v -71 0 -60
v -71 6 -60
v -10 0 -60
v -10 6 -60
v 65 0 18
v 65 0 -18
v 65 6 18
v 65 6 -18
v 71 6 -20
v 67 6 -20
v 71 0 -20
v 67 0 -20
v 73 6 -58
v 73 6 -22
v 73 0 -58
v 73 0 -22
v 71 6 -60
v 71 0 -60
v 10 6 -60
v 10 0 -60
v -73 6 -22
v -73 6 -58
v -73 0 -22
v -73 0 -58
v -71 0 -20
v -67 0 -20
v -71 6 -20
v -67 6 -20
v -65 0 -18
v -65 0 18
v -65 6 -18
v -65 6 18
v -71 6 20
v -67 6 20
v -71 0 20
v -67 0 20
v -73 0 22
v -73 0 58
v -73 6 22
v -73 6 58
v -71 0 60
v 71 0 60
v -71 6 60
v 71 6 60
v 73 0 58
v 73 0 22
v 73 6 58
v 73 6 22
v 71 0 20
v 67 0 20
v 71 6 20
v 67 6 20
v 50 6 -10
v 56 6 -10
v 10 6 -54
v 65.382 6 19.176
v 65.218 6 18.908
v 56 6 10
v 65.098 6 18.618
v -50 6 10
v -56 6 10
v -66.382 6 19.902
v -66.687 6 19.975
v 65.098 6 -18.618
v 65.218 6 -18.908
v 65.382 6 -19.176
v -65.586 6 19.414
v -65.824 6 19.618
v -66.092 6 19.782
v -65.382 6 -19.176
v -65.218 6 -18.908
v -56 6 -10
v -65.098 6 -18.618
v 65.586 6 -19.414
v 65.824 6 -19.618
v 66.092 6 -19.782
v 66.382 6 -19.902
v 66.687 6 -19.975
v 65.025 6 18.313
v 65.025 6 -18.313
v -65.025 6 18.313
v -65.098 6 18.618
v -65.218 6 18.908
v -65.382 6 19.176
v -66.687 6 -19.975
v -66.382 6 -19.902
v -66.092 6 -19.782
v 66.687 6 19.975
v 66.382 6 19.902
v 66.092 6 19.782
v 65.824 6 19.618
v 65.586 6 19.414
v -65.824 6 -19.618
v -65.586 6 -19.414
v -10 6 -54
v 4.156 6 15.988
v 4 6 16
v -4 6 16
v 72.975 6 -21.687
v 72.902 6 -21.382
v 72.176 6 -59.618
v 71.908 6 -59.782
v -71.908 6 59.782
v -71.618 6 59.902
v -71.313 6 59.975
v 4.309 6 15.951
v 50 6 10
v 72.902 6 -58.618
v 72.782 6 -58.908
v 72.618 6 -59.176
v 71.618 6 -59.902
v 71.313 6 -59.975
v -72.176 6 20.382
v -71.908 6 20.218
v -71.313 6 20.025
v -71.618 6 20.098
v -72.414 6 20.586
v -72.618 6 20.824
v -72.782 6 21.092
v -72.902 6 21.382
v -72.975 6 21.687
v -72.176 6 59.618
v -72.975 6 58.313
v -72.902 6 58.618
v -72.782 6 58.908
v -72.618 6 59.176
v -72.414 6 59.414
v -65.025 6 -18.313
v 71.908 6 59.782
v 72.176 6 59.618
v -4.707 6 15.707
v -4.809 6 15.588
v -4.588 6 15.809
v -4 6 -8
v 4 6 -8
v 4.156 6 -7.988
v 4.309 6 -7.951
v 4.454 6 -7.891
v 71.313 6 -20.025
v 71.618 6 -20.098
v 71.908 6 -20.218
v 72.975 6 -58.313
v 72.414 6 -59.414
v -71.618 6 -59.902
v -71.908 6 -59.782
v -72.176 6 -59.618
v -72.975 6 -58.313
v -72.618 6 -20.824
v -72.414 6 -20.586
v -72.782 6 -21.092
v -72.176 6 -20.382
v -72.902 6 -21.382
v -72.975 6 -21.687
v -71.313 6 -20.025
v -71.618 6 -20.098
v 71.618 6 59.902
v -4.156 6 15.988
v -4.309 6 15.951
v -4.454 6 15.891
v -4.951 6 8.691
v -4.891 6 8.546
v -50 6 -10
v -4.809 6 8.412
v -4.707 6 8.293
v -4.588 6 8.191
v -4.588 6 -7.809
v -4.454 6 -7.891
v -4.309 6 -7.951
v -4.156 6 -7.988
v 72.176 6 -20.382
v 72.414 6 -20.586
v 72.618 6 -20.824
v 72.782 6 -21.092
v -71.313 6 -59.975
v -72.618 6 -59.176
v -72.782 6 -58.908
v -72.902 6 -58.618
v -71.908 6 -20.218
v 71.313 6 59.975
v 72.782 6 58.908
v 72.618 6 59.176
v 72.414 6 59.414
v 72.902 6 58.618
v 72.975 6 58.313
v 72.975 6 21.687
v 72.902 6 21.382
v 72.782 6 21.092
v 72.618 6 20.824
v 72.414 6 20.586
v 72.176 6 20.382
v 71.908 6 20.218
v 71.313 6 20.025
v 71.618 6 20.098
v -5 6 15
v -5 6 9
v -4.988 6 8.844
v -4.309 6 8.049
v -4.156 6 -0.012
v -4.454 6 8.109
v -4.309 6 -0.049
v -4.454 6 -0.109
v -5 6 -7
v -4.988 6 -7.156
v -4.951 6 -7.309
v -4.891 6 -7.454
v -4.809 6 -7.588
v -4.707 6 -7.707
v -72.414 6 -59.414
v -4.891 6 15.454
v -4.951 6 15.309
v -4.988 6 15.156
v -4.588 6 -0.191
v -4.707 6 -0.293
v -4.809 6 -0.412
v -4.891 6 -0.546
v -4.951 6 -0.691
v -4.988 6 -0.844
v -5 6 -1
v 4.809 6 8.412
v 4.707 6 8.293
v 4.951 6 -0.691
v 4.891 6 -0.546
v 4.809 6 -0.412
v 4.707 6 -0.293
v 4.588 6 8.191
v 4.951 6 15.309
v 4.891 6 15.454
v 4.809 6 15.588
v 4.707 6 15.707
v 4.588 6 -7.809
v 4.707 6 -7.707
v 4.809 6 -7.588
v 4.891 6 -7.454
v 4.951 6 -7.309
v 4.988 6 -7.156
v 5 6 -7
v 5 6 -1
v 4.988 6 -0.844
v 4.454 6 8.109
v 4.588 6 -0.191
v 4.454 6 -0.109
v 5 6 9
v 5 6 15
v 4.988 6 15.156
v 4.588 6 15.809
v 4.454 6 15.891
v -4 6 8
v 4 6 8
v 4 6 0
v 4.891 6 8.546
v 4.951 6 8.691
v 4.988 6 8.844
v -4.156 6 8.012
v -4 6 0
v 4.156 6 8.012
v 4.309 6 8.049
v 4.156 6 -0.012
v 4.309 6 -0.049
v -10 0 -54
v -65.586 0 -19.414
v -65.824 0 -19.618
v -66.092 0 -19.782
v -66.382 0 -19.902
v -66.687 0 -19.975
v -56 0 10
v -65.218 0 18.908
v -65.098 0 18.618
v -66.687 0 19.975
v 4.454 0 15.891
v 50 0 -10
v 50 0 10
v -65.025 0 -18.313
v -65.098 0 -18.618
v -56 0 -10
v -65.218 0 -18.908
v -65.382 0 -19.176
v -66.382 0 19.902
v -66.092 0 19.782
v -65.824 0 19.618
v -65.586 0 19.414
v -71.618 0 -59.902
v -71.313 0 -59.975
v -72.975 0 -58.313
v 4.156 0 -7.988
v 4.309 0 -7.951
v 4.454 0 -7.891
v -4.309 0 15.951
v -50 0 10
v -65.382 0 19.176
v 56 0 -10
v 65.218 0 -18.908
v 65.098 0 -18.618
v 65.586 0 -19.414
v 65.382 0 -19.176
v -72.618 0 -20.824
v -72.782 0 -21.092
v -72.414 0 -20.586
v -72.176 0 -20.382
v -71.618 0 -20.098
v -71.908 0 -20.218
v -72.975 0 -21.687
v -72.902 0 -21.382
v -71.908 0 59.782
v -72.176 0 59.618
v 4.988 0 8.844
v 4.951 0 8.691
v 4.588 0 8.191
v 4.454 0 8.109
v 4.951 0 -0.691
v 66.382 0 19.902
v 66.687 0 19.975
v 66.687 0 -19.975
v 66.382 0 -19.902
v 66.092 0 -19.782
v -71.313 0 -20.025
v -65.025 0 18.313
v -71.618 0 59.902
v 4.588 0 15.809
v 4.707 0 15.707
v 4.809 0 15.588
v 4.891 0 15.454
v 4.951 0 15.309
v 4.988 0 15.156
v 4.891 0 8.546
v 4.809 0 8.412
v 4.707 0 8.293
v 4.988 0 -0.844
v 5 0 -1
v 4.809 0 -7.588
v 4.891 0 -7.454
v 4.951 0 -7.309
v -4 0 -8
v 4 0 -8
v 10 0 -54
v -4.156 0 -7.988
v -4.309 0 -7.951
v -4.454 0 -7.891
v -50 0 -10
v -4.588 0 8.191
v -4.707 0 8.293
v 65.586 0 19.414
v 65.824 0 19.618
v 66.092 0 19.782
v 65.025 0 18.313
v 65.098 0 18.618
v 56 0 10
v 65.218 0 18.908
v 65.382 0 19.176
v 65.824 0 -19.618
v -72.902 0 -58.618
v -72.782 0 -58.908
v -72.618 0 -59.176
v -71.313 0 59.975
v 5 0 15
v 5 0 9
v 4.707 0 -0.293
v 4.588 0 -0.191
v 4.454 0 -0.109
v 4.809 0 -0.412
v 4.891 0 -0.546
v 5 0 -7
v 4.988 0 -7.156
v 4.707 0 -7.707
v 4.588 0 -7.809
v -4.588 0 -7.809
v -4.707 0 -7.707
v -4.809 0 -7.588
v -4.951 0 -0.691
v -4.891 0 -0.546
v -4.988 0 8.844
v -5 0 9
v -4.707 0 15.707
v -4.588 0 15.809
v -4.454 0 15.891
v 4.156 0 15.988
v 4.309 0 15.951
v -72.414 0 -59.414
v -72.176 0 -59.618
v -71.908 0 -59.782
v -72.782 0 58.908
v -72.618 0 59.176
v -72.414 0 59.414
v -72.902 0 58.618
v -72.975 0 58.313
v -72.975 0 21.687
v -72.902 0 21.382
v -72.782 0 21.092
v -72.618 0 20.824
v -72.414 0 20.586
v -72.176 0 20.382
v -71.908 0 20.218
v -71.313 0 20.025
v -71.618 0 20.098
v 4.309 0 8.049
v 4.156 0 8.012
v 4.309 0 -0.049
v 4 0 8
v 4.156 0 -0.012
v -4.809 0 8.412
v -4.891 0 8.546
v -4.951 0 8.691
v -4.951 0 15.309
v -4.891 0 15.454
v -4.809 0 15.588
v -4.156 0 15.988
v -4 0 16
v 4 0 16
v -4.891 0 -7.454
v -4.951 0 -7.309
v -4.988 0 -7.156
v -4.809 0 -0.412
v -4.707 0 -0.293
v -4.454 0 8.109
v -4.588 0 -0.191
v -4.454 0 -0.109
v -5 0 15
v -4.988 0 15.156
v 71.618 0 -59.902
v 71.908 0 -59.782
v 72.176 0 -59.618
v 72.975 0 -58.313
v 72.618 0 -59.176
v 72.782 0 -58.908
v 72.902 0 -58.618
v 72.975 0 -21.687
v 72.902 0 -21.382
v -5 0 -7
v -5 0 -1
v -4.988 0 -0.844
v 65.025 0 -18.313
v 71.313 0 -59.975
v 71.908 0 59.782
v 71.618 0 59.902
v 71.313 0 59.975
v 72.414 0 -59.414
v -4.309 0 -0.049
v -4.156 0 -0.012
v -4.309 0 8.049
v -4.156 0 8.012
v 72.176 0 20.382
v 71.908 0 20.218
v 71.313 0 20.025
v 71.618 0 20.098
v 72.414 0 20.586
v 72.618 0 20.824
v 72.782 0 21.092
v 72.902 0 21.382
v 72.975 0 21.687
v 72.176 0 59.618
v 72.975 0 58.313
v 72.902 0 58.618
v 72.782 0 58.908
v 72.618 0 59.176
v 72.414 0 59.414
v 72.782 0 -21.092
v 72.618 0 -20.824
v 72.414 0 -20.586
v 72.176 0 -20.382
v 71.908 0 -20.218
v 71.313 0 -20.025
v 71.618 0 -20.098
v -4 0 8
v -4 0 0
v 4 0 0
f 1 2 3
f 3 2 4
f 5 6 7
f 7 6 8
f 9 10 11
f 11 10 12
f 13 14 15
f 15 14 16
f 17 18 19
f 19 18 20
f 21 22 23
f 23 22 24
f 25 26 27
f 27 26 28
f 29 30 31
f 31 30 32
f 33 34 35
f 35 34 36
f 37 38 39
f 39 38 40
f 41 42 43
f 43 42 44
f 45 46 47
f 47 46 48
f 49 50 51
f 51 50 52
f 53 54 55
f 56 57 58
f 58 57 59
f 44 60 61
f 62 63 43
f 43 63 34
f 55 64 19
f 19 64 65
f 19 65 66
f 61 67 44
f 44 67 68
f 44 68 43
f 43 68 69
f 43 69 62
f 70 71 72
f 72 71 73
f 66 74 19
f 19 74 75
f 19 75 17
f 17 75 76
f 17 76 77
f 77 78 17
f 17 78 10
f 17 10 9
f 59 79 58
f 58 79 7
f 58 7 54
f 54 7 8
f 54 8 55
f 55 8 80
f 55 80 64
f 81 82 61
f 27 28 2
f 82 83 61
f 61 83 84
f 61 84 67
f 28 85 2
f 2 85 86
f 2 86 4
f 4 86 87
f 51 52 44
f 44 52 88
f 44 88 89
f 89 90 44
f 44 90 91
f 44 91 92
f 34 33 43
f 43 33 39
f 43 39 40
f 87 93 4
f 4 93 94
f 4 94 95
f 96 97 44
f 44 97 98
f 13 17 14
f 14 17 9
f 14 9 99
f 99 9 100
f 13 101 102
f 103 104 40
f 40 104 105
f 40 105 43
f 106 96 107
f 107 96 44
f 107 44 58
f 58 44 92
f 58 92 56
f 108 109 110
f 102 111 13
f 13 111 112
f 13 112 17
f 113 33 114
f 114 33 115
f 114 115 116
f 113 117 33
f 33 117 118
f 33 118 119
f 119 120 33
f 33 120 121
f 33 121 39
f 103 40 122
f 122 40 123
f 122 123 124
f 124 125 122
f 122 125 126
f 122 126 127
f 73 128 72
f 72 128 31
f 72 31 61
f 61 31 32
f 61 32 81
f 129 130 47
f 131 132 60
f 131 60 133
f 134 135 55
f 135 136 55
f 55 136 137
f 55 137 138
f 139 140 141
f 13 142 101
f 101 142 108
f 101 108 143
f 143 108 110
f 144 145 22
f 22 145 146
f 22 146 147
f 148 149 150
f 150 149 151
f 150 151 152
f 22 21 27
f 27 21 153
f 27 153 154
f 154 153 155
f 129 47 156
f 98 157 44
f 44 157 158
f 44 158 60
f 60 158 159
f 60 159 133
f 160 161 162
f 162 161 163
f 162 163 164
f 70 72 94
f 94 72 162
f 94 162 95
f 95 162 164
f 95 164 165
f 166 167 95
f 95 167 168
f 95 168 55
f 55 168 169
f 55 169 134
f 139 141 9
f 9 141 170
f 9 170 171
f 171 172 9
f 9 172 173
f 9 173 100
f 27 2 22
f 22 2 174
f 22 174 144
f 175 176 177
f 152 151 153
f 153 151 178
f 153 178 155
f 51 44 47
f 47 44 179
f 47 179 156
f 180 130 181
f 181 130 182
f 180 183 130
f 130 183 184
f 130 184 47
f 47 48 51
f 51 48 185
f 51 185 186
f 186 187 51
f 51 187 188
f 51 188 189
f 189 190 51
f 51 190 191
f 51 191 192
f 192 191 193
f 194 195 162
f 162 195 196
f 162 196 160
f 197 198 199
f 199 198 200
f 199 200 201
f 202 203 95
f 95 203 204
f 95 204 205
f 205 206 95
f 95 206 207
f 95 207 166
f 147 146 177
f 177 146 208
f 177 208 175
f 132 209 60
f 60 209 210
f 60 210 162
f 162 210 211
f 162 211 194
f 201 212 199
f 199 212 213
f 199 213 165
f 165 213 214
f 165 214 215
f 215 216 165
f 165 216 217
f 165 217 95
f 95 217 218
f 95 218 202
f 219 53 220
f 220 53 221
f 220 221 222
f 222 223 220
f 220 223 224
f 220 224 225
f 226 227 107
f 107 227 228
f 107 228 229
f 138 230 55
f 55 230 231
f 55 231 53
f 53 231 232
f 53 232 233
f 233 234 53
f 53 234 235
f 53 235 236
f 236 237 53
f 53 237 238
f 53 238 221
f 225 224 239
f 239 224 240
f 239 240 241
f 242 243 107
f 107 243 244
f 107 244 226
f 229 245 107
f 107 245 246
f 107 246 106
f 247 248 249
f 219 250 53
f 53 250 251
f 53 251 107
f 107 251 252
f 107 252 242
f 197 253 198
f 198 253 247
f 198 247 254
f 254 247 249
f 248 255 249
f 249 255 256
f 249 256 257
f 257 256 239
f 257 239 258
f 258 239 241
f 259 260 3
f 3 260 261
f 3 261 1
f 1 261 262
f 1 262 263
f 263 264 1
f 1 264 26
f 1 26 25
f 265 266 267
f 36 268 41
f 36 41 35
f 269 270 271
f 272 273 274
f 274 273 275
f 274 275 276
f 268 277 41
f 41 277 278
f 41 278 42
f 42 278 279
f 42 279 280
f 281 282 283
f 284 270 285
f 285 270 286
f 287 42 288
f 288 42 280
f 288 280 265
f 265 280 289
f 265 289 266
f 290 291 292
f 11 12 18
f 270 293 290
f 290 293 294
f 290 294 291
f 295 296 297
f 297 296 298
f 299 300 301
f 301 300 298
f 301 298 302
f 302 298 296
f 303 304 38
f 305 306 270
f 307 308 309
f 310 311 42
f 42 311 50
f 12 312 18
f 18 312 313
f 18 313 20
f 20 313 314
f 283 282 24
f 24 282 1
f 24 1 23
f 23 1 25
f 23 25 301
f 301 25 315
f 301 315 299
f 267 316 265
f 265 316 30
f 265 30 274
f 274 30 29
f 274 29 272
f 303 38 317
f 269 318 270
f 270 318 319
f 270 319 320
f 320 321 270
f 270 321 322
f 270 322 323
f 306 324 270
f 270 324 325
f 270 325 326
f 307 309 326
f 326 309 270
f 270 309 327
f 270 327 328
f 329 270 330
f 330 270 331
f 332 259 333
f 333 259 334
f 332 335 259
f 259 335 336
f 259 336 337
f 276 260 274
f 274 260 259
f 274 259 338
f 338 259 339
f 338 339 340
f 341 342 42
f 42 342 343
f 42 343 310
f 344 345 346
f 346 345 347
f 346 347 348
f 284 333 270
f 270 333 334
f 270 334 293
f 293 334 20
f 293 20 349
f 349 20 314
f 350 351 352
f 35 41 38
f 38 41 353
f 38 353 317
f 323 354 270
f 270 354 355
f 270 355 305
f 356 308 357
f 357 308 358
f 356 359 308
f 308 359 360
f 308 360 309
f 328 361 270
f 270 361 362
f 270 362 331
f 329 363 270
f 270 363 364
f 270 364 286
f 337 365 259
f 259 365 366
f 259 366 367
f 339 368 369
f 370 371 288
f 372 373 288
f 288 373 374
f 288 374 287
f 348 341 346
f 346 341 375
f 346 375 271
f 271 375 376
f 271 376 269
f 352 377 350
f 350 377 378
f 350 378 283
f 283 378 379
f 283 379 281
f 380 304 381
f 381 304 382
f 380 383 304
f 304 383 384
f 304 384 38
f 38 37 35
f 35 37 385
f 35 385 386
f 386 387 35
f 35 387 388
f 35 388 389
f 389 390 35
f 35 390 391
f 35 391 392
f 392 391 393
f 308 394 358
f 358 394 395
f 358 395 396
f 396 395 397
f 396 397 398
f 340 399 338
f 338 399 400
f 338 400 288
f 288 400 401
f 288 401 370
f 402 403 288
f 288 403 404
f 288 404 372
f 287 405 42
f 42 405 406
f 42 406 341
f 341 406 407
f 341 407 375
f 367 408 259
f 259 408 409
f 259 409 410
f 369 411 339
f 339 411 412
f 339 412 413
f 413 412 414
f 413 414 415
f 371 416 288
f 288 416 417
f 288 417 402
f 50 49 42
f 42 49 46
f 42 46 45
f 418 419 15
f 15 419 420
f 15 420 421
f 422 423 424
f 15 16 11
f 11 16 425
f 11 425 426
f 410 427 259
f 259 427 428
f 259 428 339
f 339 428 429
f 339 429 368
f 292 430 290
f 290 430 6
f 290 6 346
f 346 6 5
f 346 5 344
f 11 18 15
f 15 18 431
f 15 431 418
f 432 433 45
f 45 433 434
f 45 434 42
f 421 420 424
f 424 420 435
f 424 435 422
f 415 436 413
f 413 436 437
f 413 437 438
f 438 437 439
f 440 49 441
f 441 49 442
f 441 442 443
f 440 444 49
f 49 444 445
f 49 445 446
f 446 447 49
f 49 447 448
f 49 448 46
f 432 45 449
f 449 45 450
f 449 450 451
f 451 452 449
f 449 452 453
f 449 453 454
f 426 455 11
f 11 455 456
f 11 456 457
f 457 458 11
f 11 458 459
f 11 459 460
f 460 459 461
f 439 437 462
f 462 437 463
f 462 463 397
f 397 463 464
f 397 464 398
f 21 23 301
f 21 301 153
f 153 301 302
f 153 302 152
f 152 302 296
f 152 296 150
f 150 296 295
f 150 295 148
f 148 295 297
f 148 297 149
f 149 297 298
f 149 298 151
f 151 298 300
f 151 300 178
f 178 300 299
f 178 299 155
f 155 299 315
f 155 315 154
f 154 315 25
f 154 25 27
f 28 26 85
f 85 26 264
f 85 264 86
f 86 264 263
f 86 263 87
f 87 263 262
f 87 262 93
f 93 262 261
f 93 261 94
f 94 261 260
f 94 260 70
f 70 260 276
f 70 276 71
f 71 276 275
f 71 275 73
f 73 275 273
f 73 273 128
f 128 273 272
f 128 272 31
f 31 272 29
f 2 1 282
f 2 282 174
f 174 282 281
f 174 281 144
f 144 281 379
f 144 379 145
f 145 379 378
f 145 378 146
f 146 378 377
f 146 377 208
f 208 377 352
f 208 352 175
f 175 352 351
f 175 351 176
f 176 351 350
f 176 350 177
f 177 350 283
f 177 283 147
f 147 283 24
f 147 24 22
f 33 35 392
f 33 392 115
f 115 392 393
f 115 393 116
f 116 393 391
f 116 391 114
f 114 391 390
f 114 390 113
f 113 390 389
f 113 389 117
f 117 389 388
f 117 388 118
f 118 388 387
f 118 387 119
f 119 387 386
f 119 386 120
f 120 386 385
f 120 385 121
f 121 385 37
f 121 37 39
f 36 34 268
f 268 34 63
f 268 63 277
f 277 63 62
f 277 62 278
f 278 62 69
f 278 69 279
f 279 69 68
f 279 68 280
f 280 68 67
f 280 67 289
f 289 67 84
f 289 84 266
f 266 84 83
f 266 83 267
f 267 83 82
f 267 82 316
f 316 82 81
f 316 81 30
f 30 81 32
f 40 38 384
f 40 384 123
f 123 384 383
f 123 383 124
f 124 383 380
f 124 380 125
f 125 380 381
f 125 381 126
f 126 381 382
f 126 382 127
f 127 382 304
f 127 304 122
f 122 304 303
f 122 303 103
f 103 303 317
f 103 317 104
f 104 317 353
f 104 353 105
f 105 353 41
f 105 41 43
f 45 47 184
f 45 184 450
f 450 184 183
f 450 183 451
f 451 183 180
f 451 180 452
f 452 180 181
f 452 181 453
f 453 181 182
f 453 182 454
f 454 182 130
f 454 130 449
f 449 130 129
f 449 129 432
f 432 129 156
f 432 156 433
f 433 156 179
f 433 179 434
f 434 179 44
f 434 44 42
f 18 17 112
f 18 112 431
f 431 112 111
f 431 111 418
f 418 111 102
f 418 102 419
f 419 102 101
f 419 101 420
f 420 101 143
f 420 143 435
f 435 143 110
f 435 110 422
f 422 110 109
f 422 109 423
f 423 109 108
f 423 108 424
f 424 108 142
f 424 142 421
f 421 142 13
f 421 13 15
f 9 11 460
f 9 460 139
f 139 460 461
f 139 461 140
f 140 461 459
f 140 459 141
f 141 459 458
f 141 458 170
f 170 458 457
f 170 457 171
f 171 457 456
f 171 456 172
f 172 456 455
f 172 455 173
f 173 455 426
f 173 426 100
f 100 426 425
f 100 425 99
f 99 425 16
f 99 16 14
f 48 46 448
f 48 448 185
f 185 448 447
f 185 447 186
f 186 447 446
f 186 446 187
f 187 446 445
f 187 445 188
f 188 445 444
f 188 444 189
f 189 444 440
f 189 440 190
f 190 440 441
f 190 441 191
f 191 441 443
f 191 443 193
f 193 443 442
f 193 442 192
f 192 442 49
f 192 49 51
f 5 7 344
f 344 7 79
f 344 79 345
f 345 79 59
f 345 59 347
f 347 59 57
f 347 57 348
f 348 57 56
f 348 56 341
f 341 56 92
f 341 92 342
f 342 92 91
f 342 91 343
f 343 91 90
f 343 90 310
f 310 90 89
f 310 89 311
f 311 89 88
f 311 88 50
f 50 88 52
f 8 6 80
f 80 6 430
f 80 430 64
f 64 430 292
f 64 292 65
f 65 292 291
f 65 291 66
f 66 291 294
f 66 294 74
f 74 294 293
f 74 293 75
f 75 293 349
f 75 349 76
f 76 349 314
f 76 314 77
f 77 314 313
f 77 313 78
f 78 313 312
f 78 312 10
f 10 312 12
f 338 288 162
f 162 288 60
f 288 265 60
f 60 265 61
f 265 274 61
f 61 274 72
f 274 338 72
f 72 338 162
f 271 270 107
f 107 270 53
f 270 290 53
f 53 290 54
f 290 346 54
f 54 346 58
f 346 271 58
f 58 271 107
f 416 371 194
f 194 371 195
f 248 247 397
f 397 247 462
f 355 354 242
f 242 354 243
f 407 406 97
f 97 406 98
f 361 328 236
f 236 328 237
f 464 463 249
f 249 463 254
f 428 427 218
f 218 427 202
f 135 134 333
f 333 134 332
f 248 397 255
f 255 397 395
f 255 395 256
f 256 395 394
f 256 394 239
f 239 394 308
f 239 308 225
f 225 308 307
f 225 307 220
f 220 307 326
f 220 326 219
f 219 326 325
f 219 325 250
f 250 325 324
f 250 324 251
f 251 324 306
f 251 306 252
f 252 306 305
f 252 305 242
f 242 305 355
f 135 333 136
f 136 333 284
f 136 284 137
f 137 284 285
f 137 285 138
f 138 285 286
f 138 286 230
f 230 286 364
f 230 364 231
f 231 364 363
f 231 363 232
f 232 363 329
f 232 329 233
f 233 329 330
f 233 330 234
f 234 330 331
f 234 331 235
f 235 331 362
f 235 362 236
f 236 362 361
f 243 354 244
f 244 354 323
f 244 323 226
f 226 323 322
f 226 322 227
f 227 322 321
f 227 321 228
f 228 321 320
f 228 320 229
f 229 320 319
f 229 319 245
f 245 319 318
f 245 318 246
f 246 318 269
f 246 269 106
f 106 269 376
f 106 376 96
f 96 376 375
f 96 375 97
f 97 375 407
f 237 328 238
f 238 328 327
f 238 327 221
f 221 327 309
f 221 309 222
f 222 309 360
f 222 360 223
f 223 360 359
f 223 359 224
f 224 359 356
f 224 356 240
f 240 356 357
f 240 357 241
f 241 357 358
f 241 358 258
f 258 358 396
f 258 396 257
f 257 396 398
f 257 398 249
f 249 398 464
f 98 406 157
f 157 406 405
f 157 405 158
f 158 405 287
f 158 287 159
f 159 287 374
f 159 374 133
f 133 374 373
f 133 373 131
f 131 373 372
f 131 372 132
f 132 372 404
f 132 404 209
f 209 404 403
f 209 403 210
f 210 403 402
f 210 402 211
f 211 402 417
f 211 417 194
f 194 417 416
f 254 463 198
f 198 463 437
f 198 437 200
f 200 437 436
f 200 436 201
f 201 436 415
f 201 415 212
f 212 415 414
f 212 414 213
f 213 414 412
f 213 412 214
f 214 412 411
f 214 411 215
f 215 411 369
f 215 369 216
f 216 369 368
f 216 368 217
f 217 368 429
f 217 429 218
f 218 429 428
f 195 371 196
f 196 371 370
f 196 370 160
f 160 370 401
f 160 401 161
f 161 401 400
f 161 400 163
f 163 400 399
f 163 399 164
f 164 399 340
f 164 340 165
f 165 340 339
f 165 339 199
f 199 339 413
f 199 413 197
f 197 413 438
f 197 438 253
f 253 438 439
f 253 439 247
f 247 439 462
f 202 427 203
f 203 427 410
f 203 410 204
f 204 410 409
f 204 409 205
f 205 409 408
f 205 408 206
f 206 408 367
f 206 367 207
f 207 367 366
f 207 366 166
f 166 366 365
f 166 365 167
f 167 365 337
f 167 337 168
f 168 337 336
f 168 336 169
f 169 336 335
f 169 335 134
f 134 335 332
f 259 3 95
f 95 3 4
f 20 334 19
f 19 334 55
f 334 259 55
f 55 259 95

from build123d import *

# Parameters (mm, degrees)
BOSS_EXTRUDE1_DEPTH     = 6
FILLET1_R               = 2
CUT_EXTRUDE1_DEPTH      = 95.683683917
CUT_EXTRUDE1_DEPTH_BACK = 95.683683917
SKETCH2_W               = 6
SKETCH2_H               = 20
SKETCH3_W               = 10
SKETCH3_H               = 8
CUT_EXTRUDE2_DEPTH      = 95.683683917
FILLET2_R               = 1
SKETCH4_W               = 20
SKETCH4_H               = 6
CUT_EXTRUDE3_DEPTH      = 95.683683917


with BuildPart() as part:
    # Sketch1 → Boss-Extrude1 (new body)
    with BuildSketch(Plane(origin=(0, 0, 0), x_dir=(1, 0, 0), z_dir=(0, 1, 0))):
        Polygon((65, 20), (65, -20), (73, -20), (73, -60), (-73, -60), (-73, -20), (-65, -20), (-65, 20), (-73, 20), (-73, 60), (73, 60), (73, 20), align=None)
    extrude(amount=BOSS_EXTRUDE1_DEPTH)

    # Fillet1
    fillet1_edges = [part.edges().sort_by_distance(p)[0] for p in [
        (65, 3, 20),
        (73, 3, 20),
        (73, 3, 60),
        (-73, 3, 60),
        (-73, 3, 20),
        (-65, 3, 20),
        (-65, 3, -20),
        (-73, 3, -20),
        (-73, 3, -60),
        (73, 3, -60),
        (73, 3, -20),
        (65, 3, -20),
    ]]
    fillet(fillet1_edges, radius=FILLET1_R)

    # Sketch2 → Cut-Extrude1 (cut, two sides: drawn at the far end of the back side and taken through both)
    with BuildSketch(Plane(origin=(0, 6, 0), x_dir=(1, 0, 0), z_dir=(0, 1, 0)).offset(-CUT_EXTRUDE1_DEPTH_BACK)):
        with Locations((53, 0)):
            Rectangle(SKETCH2_W, SKETCH2_H)
        with Locations((-53, 0)):
            Rectangle(SKETCH2_W, SKETCH2_H)
    extrude(amount=CUT_EXTRUDE1_DEPTH + CUT_EXTRUDE1_DEPTH_BACK, mode=Mode.SUBTRACT)

    # Sketch3 → Cut-Extrude2 (cut, through all)
    with BuildSketch(Plane(origin=(0, 6, 0), x_dir=(1, 0, 0), z_dir=(0, 1, 0))):
        with Locations((0, 4)):
            Rectangle(SKETCH3_W, SKETCH3_H)
        with Locations((0, -12)):
            Rectangle(SKETCH3_W, SKETCH3_H)
    extrude(amount=-CUT_EXTRUDE2_DEPTH, mode=Mode.SUBTRACT)

    # Fillet2
    fillet2_edges = [part.edges().sort_by_distance(p)[0] for p in [
        (5, 3, -8),
        (5, 3, 0),
        (-5, 3, 0),
        (-5, 3, -8),
        (-5, 3, 16),
        (-5, 3, 8),
        (5, 3, 8),
        (5, 3, 16),
    ]]
    fillet(fillet2_edges, radius=FILLET2_R)

    # Sketch4 → Cut-Extrude3 (cut, through all)
    with BuildSketch(Plane(origin=(0, 6, 0), x_dir=(1, 0, 0), z_dir=(0, 1, 0))):
        with Locations((0, 57)):
            Rectangle(SKETCH4_W, SKETCH4_H)
    extrude(amount=-CUT_EXTRUDE3_DEPTH, mode=Mode.SUBTRACT)


solid = part.part
